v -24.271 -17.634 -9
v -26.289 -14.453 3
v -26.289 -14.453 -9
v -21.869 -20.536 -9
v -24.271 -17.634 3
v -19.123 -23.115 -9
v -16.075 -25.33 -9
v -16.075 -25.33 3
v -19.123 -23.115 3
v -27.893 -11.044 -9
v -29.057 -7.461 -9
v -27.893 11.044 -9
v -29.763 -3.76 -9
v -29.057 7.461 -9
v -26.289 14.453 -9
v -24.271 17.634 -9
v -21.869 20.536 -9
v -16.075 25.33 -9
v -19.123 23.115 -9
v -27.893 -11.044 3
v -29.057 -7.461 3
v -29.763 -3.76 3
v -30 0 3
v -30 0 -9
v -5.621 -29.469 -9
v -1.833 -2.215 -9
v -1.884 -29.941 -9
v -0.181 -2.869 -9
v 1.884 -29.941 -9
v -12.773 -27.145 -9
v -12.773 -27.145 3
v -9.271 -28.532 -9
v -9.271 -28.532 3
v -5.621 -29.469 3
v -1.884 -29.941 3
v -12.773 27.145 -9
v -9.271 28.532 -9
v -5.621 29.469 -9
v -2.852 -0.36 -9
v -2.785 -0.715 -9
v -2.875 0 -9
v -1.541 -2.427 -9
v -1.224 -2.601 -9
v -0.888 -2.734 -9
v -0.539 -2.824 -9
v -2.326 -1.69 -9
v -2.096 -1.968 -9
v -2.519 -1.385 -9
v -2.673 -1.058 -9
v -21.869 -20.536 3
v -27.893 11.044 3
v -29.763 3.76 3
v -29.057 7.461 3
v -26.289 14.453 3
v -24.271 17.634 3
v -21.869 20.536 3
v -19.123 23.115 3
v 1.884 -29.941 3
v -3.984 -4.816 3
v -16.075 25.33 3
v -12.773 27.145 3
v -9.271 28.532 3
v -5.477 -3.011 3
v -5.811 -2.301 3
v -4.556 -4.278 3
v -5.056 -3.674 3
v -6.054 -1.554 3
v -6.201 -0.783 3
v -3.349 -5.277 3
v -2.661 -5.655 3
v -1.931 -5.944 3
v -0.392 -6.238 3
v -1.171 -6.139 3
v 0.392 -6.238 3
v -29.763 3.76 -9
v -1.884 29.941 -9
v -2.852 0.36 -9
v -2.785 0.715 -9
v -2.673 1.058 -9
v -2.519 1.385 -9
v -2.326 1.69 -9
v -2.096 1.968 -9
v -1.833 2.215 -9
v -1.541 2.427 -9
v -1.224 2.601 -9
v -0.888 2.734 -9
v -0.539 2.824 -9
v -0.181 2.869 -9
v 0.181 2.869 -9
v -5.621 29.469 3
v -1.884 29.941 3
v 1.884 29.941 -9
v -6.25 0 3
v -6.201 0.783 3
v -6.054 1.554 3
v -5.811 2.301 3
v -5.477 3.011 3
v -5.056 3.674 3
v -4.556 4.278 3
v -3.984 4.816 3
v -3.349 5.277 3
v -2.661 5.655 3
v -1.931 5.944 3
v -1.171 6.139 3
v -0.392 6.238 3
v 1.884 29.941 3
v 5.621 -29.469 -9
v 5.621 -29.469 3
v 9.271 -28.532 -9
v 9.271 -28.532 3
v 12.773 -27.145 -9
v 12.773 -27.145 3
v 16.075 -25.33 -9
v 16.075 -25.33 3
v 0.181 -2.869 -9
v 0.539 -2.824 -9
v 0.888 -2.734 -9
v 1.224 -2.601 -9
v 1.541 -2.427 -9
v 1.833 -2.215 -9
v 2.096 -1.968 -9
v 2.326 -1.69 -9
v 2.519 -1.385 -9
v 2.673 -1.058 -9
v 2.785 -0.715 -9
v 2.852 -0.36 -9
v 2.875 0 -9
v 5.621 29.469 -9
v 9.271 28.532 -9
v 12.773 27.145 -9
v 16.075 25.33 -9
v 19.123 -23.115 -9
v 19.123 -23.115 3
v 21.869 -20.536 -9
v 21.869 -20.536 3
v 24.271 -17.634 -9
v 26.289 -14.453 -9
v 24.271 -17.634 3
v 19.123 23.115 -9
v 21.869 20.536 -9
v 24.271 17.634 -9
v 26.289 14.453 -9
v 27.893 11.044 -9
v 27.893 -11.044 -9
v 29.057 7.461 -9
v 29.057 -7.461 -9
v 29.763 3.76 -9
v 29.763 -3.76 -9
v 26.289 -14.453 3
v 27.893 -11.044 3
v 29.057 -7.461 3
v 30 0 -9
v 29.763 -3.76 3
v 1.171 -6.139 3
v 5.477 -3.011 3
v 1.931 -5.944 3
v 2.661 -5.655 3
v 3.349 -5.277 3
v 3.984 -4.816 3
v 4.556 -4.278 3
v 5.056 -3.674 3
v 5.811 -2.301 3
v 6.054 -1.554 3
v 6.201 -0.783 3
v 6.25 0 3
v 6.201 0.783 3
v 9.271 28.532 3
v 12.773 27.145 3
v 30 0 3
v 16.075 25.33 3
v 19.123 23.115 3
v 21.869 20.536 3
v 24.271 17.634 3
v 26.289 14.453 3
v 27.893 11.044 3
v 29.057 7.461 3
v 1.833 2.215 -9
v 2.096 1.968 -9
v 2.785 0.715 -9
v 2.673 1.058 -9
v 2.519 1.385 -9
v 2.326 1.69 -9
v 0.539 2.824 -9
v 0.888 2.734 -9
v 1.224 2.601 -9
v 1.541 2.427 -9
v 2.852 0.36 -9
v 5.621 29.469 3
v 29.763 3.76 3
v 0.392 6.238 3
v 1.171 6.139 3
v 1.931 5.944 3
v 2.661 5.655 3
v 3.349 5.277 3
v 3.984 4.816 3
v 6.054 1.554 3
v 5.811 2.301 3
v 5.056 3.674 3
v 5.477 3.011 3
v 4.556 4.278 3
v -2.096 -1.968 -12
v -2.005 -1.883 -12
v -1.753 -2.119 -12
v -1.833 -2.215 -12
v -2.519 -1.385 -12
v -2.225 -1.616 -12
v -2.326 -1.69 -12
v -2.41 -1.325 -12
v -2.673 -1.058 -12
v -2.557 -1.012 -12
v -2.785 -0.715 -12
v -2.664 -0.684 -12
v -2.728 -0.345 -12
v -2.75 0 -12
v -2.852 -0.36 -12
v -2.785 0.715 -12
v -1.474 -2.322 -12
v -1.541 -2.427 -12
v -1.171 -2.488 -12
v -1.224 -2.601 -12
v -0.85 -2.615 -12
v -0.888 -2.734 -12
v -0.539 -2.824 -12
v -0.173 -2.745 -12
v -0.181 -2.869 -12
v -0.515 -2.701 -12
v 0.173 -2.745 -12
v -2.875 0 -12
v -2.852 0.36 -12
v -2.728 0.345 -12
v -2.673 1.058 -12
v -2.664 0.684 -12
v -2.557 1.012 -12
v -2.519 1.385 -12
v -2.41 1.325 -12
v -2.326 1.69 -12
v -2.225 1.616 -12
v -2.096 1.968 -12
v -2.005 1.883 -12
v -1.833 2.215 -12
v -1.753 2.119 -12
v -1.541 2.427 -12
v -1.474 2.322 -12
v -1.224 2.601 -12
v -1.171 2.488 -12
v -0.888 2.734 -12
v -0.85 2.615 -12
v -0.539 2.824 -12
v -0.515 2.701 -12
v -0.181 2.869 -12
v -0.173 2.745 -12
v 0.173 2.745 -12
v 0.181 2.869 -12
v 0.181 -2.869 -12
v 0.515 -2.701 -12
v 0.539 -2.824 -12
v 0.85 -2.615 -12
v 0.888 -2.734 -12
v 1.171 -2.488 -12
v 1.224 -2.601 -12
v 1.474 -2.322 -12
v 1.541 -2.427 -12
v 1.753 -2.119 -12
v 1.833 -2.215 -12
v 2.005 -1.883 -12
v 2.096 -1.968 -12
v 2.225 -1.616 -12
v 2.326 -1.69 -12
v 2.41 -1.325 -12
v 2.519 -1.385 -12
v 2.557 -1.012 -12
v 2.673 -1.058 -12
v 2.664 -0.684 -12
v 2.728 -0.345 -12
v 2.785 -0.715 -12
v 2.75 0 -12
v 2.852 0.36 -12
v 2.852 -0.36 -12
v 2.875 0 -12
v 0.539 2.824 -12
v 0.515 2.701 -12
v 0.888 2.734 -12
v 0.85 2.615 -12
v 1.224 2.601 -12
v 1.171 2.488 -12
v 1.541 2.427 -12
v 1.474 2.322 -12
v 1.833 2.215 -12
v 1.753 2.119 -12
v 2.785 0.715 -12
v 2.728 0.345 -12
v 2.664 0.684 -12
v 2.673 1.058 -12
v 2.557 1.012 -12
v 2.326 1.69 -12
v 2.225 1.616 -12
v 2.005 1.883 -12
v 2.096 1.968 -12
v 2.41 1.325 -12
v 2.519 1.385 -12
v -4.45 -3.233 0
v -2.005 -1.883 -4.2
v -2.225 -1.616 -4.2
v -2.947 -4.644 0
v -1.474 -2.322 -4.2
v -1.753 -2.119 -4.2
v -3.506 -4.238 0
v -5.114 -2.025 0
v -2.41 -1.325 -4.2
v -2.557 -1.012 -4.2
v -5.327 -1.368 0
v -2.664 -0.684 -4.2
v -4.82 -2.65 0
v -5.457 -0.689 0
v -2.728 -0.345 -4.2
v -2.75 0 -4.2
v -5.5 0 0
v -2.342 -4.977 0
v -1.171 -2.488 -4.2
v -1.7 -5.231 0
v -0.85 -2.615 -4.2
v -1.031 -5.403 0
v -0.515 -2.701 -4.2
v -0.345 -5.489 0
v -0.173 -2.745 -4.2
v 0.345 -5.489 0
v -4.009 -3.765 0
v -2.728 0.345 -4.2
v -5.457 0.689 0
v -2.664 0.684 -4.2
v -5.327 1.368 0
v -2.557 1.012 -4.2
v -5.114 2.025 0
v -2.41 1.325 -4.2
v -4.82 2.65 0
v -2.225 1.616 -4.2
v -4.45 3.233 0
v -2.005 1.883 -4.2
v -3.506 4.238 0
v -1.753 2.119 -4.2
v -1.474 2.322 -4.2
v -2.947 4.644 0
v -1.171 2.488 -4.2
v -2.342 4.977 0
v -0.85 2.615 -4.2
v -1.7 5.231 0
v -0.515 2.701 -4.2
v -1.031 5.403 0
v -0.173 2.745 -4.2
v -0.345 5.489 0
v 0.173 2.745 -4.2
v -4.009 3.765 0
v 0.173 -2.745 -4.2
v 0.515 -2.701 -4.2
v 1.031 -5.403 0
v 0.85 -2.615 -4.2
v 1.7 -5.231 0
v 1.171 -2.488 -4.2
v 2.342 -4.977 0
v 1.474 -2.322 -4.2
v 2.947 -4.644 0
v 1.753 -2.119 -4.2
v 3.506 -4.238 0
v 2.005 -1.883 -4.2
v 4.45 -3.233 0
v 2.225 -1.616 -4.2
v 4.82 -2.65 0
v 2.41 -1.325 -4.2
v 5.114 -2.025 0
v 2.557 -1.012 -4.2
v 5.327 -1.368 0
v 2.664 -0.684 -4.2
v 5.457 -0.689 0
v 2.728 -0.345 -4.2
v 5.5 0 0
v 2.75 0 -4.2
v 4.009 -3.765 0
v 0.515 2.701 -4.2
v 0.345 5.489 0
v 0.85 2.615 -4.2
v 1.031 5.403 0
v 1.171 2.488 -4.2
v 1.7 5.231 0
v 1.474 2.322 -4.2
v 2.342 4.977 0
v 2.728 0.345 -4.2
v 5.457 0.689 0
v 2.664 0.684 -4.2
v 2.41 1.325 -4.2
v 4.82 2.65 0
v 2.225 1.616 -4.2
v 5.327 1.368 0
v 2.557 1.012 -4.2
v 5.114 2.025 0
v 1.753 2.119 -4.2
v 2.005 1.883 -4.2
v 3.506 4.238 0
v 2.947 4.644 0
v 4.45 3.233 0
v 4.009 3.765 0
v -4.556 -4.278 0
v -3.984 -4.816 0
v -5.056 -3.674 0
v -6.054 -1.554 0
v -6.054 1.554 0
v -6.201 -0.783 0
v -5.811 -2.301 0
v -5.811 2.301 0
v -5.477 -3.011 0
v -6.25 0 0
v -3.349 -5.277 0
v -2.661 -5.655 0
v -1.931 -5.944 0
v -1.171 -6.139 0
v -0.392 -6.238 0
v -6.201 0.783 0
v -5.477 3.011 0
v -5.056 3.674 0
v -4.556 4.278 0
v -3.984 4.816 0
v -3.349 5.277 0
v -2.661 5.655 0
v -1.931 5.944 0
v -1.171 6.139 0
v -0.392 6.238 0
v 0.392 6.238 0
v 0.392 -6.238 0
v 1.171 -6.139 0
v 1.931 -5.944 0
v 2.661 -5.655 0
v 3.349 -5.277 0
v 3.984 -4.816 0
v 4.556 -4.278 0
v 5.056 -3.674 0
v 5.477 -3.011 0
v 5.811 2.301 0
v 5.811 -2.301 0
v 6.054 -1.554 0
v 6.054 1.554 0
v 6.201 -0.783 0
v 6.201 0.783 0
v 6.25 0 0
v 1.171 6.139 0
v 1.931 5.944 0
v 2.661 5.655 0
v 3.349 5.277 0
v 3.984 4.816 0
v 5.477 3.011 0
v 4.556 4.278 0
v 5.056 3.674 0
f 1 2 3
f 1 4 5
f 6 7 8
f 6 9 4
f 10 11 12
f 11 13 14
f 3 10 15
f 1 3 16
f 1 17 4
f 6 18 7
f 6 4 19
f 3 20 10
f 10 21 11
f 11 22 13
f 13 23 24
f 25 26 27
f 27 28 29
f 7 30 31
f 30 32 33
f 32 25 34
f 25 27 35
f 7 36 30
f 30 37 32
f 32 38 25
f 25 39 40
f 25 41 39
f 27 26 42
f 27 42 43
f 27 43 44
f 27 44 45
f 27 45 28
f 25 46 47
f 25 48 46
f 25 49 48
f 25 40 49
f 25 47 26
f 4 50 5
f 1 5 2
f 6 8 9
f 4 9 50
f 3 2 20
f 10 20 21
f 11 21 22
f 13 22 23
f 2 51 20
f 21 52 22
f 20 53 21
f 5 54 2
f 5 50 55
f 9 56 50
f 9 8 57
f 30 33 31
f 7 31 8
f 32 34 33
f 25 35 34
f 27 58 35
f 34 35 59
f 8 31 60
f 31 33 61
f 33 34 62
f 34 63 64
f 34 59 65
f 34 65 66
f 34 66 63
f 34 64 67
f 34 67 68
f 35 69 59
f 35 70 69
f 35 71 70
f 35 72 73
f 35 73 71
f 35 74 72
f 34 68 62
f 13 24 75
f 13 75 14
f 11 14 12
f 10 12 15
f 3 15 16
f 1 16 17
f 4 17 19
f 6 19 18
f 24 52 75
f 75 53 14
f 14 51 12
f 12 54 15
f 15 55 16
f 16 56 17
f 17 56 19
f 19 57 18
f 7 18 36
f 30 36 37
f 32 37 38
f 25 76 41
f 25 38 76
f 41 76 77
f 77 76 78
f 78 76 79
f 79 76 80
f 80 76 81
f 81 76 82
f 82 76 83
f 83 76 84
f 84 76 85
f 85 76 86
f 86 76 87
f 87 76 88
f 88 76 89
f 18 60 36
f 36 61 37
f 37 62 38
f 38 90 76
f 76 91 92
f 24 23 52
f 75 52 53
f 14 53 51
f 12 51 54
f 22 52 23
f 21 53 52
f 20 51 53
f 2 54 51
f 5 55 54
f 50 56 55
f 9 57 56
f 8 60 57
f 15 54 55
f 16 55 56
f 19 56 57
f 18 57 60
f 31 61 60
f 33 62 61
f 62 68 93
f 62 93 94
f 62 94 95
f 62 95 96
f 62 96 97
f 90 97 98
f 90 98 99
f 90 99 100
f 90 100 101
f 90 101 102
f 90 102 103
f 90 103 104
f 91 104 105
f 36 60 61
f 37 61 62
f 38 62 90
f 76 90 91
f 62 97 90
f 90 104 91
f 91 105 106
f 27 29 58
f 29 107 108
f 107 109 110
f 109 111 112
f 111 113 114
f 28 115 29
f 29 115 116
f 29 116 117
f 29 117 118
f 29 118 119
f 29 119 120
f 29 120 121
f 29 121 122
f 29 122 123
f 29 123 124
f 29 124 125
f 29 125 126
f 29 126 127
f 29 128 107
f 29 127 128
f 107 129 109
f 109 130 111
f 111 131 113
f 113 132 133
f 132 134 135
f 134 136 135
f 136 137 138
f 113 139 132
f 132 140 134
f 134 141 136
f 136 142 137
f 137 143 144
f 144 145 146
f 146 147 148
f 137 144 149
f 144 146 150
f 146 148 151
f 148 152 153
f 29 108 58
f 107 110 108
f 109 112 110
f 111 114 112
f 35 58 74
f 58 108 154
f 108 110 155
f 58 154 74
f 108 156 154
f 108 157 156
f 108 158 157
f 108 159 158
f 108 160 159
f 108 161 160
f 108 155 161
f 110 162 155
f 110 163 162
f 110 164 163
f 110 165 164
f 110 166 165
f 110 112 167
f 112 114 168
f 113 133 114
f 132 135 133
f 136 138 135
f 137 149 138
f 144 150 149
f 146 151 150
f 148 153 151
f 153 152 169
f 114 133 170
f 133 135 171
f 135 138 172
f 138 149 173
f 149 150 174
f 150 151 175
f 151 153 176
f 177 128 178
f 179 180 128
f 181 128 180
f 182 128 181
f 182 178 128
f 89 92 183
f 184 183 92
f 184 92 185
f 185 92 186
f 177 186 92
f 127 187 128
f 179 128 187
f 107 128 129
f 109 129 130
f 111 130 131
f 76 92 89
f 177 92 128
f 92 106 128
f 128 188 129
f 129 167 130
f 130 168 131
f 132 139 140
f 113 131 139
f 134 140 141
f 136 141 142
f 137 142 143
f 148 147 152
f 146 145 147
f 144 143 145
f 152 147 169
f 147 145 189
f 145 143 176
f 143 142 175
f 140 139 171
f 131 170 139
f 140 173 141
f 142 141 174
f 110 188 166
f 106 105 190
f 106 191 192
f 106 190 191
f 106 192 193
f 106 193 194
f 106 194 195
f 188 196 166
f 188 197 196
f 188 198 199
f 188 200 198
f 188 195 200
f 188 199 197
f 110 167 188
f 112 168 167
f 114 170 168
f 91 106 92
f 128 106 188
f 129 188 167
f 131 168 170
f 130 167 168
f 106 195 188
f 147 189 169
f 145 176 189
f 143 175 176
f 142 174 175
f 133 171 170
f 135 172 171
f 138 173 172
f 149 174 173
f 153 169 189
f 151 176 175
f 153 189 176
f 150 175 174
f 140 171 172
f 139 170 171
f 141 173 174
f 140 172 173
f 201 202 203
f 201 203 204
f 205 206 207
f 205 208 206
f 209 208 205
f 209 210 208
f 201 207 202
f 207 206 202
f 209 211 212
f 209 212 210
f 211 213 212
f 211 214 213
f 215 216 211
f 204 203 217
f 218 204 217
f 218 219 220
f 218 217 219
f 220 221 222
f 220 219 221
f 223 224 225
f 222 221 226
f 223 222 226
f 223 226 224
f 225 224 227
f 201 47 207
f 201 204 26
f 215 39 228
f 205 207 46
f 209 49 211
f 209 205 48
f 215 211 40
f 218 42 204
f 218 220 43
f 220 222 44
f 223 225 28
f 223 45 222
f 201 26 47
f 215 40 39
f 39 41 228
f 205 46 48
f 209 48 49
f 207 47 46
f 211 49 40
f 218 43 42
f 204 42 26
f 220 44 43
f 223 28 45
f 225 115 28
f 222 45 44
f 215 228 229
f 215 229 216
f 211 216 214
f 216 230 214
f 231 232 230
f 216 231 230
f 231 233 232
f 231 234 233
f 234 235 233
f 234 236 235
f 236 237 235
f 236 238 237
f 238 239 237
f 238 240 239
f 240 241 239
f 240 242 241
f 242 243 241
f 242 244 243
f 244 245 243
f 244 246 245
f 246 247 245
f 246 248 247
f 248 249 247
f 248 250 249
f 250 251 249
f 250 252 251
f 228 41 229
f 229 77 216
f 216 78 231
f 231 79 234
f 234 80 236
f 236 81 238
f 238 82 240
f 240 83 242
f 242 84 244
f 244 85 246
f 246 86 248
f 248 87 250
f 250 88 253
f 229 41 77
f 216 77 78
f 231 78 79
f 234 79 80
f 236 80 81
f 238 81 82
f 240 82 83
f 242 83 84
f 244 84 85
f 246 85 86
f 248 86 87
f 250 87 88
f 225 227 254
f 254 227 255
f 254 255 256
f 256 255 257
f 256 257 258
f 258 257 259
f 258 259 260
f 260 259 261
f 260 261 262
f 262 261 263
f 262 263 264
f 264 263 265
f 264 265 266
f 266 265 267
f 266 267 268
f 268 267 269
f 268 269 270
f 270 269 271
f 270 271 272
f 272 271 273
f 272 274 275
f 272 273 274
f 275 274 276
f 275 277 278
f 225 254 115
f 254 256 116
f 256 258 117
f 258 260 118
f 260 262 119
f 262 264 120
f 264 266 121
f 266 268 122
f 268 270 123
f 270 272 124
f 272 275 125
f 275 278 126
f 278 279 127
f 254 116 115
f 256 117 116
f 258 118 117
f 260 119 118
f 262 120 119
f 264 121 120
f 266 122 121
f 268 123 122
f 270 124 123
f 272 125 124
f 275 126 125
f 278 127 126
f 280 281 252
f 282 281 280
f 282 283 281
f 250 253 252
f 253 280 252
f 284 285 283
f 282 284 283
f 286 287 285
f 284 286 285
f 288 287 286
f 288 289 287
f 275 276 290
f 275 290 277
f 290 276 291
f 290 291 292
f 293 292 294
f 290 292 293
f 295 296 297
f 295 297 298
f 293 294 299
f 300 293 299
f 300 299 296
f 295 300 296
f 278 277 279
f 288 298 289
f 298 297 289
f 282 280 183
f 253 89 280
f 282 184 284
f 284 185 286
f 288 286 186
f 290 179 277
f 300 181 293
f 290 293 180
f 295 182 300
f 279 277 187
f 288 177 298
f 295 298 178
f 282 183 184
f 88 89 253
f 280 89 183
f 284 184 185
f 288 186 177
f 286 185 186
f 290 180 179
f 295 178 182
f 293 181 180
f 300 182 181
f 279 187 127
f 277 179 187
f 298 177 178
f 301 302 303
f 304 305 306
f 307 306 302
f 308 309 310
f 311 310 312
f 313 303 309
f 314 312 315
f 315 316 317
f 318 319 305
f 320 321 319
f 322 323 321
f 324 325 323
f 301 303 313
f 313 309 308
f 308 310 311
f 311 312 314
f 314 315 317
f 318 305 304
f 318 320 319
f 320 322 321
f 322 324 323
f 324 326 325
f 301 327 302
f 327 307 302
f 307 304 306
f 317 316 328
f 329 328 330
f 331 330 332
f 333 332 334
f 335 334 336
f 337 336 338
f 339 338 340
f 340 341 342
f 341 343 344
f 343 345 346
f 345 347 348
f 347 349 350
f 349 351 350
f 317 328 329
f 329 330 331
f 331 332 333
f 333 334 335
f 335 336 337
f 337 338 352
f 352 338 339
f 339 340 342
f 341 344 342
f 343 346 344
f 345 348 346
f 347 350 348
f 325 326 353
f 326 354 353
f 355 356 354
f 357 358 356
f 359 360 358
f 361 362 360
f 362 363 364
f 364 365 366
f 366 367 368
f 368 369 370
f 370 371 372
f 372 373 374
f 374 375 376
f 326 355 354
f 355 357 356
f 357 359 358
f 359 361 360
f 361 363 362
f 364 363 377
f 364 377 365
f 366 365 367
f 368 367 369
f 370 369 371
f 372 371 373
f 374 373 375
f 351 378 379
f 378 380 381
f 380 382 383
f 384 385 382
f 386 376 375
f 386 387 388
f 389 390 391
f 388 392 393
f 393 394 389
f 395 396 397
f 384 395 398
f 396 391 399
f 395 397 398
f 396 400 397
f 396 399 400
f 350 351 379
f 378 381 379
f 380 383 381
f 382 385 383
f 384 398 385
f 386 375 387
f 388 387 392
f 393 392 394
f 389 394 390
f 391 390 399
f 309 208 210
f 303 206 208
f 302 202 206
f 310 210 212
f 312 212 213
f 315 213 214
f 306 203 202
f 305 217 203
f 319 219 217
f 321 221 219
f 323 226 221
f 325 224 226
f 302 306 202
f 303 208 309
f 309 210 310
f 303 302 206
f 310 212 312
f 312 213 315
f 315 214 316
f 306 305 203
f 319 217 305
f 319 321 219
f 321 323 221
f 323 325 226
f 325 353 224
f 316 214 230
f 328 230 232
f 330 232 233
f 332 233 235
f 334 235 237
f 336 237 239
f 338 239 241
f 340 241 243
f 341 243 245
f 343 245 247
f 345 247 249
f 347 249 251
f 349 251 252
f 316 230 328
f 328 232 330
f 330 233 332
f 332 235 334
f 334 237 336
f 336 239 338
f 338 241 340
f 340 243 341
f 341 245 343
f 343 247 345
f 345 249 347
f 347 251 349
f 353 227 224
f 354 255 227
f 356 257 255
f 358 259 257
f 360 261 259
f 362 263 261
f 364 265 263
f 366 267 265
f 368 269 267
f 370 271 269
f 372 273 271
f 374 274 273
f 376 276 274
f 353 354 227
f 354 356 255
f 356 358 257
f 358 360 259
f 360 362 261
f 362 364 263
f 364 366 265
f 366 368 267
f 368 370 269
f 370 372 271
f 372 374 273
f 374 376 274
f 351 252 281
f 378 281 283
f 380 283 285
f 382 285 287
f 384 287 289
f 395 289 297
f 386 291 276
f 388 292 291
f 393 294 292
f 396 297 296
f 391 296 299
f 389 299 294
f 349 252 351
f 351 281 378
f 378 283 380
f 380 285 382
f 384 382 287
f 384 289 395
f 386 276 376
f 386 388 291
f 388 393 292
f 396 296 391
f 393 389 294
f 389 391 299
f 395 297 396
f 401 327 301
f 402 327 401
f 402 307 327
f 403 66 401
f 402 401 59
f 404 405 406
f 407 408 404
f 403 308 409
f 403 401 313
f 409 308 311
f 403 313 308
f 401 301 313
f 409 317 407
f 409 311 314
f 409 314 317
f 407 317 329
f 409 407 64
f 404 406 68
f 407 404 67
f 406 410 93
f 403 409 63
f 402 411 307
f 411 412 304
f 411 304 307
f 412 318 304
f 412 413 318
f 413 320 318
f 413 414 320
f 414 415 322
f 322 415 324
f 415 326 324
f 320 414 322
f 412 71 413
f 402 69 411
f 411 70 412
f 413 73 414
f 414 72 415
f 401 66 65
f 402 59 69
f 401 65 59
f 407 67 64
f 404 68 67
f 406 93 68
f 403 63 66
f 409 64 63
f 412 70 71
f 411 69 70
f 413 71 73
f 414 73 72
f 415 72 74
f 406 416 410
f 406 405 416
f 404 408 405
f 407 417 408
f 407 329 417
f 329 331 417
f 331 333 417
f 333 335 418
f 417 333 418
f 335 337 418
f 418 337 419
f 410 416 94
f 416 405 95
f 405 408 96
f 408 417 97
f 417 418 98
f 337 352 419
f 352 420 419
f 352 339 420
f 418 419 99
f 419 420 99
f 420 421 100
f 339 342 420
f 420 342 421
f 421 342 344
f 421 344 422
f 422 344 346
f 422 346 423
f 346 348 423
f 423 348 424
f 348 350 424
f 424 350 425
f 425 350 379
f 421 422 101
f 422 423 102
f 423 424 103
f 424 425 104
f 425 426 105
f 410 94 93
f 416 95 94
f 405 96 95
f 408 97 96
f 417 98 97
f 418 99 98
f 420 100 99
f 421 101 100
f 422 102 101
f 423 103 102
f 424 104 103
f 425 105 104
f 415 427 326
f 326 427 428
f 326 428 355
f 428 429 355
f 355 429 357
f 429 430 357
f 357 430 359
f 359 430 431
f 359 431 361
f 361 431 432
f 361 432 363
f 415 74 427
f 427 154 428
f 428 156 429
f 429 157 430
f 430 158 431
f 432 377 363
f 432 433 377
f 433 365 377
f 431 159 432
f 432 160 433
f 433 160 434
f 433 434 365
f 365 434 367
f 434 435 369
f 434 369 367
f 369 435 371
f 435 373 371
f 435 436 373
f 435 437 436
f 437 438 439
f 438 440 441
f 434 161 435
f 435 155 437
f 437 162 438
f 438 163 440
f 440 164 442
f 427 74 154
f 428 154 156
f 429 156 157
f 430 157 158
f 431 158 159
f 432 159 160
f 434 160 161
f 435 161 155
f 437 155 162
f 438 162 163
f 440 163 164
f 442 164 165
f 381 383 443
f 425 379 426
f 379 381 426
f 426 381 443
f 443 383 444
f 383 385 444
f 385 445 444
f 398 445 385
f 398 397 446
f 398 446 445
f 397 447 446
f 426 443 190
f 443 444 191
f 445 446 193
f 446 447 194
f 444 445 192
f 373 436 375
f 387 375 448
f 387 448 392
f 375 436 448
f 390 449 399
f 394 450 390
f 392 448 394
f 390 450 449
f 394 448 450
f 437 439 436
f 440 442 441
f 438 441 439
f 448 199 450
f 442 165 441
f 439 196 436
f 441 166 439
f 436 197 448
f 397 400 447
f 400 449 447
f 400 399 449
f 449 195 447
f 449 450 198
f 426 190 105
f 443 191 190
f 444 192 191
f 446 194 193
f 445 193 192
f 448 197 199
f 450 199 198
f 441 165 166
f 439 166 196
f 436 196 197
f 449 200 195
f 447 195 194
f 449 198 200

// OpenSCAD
$fn = 50;

difference() {
	union() {
		translate(v = [0, 0, -9.0]) {
			cylinder(h = 12, r = 30.0);
		}
		#translate(v = [0, 0, -12.0]) {
			cylinder(h = 12, r = 2.875);
		}
	}
	union() {
		translate(v = [0, 0, 0]) {
			rotate(a = [0, 0, 0]) {
				difference() {
					union() {
						translate(v = [0, 0, -12.0]) {
							cylinder(h = 12, r = 2.25);
						}
						translate(v = [0, 0, -4.2]) {
							cylinder(h = 4.2, r1 = 2.75, r2 = 5.5);
						}
						translate(v = [0, 0, -12.0]) {
							cylinder(h = 12, r = 2.75);
						}
						translate(v = [0, 0, -12.0]) {
							cylinder(h = 12, r = 2.25);
						}
					}
					union();
				}
			}
		}
		#cylinder(h = 3, r = 6.25);
	}
}
